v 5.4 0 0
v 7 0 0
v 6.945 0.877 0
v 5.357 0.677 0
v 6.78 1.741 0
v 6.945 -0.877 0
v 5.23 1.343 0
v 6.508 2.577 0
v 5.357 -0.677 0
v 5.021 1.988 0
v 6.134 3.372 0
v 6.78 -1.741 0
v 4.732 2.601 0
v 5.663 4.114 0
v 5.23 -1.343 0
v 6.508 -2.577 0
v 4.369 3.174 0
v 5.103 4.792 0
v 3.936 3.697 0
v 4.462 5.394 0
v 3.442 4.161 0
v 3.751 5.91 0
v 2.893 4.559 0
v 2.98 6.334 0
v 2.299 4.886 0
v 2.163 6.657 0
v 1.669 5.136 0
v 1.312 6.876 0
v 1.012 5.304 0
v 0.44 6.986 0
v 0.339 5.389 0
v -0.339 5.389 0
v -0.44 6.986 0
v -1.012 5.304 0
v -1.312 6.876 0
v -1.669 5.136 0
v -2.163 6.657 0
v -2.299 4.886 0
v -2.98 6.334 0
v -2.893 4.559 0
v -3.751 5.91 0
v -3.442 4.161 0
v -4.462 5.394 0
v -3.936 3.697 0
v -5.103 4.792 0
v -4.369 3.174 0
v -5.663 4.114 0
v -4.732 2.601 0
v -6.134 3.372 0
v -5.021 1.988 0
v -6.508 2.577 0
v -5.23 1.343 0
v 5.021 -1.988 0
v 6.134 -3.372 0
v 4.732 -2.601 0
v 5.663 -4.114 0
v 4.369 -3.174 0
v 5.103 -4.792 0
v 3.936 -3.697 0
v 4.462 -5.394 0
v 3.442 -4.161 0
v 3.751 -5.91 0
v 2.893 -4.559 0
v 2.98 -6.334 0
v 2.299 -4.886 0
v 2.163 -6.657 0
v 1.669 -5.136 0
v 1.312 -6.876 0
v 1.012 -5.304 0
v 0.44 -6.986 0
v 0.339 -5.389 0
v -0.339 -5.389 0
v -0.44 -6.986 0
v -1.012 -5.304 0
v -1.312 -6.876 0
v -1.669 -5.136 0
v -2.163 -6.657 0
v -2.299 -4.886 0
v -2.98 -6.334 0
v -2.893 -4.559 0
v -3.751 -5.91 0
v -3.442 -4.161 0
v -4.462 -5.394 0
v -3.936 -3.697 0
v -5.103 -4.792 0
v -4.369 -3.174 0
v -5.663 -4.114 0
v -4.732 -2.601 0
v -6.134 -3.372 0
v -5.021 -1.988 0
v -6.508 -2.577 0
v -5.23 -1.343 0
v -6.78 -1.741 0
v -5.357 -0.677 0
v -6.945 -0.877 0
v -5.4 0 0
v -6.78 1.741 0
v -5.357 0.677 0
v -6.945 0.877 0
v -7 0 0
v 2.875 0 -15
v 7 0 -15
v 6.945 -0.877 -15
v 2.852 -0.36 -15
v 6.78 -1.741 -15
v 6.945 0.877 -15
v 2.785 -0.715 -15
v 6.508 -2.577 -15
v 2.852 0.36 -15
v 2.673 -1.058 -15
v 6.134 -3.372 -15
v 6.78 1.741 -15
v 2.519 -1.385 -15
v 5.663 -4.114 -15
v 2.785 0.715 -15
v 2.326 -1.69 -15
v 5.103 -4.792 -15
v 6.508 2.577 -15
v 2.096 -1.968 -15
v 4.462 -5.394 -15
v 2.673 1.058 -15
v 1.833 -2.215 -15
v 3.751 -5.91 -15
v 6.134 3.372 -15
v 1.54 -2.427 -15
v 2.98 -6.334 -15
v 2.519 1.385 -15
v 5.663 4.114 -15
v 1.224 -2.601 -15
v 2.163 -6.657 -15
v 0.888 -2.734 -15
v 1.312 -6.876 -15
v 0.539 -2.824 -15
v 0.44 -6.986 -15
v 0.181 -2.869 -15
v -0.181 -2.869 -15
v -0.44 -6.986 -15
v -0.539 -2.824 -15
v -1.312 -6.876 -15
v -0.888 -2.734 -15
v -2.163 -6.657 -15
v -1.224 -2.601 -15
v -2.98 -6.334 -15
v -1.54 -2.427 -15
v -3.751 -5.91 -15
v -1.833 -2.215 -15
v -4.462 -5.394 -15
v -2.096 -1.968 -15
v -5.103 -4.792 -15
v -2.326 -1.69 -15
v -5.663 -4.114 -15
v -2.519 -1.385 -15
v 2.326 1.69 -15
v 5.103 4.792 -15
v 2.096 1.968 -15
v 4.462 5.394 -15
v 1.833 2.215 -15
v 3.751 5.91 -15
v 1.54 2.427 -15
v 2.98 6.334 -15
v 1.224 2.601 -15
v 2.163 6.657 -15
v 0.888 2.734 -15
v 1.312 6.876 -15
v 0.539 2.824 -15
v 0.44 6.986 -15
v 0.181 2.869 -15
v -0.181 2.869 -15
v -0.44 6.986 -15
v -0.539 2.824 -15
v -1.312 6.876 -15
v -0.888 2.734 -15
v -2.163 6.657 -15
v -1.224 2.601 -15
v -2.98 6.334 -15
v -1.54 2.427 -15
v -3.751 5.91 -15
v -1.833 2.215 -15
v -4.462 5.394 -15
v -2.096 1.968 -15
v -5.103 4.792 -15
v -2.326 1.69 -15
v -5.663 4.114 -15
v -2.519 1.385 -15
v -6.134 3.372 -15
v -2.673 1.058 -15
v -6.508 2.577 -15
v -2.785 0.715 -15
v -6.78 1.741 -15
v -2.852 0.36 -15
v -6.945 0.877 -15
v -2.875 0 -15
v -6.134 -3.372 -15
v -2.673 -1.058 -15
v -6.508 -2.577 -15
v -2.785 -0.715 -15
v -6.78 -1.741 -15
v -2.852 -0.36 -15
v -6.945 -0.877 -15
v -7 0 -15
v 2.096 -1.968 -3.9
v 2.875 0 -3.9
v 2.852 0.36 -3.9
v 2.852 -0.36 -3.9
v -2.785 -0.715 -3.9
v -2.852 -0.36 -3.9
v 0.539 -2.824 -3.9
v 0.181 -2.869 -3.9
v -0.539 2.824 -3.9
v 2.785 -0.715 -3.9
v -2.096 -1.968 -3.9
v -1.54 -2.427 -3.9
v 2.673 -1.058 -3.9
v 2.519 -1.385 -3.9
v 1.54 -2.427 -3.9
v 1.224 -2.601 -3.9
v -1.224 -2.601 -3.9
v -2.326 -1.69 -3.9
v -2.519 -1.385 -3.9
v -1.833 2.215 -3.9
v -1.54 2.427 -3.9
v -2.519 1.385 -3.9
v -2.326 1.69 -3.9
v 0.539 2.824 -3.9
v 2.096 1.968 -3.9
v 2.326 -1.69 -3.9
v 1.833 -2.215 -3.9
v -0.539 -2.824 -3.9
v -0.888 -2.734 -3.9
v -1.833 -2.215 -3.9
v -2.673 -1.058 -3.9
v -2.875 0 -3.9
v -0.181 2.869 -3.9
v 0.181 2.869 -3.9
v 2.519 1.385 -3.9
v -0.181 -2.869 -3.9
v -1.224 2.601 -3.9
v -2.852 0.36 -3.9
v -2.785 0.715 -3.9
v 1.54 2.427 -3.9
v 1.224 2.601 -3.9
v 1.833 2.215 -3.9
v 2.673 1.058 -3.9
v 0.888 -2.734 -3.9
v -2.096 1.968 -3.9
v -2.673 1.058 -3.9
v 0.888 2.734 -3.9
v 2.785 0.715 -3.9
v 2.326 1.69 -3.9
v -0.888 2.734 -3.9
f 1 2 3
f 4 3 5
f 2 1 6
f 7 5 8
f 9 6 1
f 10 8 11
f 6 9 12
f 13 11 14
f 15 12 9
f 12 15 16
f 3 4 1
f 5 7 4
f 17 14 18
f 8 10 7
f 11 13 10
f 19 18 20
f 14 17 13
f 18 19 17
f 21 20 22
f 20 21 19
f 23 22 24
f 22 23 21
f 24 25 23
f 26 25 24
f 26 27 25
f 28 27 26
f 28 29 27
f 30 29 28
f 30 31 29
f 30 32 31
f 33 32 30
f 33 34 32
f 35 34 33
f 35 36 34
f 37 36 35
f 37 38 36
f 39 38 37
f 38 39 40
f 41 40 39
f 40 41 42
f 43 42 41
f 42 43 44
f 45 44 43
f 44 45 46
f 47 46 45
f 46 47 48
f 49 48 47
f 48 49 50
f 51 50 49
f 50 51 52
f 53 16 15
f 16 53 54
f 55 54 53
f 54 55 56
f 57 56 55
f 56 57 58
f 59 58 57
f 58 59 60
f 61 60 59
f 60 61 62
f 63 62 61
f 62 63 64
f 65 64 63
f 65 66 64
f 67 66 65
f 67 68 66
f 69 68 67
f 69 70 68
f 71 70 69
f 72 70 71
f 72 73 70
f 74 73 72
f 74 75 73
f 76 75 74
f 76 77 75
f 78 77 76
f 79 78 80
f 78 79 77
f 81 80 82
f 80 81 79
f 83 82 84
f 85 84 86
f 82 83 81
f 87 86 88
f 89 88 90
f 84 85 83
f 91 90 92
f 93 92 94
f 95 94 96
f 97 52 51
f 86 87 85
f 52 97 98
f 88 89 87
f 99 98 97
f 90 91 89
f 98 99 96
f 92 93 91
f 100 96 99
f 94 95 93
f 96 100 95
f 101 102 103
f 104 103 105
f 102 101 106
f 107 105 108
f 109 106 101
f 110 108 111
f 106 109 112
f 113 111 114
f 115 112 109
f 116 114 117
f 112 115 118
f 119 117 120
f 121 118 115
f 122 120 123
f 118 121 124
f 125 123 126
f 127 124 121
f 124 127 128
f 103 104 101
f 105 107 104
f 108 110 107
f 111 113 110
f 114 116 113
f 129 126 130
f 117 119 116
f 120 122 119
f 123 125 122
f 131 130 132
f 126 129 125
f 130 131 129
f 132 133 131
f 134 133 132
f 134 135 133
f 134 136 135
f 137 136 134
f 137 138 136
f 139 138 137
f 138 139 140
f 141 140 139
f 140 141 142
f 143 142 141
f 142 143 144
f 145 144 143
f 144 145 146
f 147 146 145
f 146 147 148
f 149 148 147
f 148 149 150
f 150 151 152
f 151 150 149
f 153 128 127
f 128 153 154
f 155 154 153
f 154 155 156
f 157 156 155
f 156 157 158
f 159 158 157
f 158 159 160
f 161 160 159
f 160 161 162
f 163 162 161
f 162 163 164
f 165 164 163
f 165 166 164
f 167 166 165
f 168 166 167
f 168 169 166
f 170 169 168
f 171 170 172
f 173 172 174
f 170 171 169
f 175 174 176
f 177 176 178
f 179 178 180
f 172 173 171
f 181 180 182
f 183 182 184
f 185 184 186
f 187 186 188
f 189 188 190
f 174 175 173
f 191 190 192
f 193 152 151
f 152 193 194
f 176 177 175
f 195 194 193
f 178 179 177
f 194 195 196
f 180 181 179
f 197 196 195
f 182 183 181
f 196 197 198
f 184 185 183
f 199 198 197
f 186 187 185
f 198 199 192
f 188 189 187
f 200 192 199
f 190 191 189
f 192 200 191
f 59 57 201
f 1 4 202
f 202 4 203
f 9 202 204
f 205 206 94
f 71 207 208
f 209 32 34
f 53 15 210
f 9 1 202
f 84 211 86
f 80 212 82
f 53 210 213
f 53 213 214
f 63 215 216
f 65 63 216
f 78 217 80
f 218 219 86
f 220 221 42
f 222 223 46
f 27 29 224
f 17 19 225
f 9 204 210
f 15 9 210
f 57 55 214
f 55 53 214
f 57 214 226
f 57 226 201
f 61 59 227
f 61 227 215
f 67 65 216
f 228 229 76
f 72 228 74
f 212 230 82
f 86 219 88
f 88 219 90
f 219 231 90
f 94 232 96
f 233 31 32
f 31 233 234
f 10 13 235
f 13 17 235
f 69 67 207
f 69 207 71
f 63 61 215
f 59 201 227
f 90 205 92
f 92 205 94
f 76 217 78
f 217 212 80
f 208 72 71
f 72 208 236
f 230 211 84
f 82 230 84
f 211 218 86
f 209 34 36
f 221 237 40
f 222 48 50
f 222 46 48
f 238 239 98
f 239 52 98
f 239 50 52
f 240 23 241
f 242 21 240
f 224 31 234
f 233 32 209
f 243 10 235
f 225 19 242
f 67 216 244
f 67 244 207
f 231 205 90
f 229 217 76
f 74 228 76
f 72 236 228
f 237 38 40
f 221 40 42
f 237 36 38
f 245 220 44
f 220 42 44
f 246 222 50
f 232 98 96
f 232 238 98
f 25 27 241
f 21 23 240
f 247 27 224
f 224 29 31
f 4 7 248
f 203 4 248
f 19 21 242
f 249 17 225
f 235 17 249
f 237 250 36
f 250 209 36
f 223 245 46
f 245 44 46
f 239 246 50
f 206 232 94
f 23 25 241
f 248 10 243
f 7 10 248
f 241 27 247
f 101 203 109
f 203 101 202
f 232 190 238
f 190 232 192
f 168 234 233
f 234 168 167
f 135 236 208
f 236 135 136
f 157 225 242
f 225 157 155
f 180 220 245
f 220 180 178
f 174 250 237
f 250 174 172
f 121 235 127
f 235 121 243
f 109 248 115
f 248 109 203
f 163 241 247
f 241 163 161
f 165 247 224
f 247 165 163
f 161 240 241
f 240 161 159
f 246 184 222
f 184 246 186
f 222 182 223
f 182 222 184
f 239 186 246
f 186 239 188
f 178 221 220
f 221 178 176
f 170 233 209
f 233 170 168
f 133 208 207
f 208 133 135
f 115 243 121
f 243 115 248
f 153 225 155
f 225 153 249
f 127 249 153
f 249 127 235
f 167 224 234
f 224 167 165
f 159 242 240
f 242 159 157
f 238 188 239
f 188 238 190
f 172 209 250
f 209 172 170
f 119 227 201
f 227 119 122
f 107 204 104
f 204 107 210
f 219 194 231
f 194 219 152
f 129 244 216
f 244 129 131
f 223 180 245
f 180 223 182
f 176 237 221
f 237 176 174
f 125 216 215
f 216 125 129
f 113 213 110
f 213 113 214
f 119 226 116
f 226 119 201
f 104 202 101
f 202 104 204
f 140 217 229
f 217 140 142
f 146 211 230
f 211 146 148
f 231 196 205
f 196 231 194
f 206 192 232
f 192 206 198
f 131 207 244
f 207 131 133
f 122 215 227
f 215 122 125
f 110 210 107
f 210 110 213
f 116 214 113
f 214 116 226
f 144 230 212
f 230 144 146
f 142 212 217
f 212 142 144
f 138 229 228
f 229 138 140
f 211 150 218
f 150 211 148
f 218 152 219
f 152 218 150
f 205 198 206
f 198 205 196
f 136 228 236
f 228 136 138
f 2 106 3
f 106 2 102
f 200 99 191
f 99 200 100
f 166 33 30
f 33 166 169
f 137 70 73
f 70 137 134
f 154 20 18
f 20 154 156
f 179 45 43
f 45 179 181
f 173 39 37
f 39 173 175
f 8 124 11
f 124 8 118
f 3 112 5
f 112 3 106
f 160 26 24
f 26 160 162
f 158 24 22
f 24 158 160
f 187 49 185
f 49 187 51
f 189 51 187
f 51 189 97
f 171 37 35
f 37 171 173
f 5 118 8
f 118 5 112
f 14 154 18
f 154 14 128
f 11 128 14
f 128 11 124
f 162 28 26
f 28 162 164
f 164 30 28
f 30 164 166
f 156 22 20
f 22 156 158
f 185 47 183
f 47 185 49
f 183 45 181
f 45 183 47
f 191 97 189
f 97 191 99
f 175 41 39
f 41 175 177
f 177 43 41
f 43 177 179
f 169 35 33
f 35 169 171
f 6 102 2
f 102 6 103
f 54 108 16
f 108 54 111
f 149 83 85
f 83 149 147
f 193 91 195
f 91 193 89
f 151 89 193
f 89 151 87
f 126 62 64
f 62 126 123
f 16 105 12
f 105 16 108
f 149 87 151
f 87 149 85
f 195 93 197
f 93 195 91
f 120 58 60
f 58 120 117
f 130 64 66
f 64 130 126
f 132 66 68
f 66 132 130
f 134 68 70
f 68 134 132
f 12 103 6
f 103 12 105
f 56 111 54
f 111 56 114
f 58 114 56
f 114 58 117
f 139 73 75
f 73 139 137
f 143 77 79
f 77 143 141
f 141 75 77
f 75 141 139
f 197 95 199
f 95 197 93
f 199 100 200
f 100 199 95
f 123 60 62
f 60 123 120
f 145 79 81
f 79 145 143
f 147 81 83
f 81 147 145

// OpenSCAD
$fn = 50;


difference() {
	union() {
		translate(v = [0, 0, -15.0000000000]) {
			cylinder(h = 15, r = 7.0000000000);
		}
		cylinder(h = 0, r = 17.0000000000);
	}
	union() {
		translate(v = [0, 0, 0]) {
			rotate(a = [0, 0, 0]) {
				difference() {
					union() {
						#translate(v = [0, 0, -15.0000000000]) {
							cylinder(h = 15, r = 2.6000000000);
						}
						#translate(v = [0, 0, -3.9000000000]) {
							cylinder(h = 3.9000000000, r = 7.0000000000, r1 = 2.8750000000, r2 = 5.4000000000);
						}
						#translate(v = [0, 0, -15.0000000000]) {
							cylinder(h = 15, r = 2.8750000000);
						}
						#translate(v = [0, 0, -15.0000000000]) {
							cylinder(h = 15, r = 2.6000000000);
						}
					}
					union();
				}
			}
		}
	}
}
